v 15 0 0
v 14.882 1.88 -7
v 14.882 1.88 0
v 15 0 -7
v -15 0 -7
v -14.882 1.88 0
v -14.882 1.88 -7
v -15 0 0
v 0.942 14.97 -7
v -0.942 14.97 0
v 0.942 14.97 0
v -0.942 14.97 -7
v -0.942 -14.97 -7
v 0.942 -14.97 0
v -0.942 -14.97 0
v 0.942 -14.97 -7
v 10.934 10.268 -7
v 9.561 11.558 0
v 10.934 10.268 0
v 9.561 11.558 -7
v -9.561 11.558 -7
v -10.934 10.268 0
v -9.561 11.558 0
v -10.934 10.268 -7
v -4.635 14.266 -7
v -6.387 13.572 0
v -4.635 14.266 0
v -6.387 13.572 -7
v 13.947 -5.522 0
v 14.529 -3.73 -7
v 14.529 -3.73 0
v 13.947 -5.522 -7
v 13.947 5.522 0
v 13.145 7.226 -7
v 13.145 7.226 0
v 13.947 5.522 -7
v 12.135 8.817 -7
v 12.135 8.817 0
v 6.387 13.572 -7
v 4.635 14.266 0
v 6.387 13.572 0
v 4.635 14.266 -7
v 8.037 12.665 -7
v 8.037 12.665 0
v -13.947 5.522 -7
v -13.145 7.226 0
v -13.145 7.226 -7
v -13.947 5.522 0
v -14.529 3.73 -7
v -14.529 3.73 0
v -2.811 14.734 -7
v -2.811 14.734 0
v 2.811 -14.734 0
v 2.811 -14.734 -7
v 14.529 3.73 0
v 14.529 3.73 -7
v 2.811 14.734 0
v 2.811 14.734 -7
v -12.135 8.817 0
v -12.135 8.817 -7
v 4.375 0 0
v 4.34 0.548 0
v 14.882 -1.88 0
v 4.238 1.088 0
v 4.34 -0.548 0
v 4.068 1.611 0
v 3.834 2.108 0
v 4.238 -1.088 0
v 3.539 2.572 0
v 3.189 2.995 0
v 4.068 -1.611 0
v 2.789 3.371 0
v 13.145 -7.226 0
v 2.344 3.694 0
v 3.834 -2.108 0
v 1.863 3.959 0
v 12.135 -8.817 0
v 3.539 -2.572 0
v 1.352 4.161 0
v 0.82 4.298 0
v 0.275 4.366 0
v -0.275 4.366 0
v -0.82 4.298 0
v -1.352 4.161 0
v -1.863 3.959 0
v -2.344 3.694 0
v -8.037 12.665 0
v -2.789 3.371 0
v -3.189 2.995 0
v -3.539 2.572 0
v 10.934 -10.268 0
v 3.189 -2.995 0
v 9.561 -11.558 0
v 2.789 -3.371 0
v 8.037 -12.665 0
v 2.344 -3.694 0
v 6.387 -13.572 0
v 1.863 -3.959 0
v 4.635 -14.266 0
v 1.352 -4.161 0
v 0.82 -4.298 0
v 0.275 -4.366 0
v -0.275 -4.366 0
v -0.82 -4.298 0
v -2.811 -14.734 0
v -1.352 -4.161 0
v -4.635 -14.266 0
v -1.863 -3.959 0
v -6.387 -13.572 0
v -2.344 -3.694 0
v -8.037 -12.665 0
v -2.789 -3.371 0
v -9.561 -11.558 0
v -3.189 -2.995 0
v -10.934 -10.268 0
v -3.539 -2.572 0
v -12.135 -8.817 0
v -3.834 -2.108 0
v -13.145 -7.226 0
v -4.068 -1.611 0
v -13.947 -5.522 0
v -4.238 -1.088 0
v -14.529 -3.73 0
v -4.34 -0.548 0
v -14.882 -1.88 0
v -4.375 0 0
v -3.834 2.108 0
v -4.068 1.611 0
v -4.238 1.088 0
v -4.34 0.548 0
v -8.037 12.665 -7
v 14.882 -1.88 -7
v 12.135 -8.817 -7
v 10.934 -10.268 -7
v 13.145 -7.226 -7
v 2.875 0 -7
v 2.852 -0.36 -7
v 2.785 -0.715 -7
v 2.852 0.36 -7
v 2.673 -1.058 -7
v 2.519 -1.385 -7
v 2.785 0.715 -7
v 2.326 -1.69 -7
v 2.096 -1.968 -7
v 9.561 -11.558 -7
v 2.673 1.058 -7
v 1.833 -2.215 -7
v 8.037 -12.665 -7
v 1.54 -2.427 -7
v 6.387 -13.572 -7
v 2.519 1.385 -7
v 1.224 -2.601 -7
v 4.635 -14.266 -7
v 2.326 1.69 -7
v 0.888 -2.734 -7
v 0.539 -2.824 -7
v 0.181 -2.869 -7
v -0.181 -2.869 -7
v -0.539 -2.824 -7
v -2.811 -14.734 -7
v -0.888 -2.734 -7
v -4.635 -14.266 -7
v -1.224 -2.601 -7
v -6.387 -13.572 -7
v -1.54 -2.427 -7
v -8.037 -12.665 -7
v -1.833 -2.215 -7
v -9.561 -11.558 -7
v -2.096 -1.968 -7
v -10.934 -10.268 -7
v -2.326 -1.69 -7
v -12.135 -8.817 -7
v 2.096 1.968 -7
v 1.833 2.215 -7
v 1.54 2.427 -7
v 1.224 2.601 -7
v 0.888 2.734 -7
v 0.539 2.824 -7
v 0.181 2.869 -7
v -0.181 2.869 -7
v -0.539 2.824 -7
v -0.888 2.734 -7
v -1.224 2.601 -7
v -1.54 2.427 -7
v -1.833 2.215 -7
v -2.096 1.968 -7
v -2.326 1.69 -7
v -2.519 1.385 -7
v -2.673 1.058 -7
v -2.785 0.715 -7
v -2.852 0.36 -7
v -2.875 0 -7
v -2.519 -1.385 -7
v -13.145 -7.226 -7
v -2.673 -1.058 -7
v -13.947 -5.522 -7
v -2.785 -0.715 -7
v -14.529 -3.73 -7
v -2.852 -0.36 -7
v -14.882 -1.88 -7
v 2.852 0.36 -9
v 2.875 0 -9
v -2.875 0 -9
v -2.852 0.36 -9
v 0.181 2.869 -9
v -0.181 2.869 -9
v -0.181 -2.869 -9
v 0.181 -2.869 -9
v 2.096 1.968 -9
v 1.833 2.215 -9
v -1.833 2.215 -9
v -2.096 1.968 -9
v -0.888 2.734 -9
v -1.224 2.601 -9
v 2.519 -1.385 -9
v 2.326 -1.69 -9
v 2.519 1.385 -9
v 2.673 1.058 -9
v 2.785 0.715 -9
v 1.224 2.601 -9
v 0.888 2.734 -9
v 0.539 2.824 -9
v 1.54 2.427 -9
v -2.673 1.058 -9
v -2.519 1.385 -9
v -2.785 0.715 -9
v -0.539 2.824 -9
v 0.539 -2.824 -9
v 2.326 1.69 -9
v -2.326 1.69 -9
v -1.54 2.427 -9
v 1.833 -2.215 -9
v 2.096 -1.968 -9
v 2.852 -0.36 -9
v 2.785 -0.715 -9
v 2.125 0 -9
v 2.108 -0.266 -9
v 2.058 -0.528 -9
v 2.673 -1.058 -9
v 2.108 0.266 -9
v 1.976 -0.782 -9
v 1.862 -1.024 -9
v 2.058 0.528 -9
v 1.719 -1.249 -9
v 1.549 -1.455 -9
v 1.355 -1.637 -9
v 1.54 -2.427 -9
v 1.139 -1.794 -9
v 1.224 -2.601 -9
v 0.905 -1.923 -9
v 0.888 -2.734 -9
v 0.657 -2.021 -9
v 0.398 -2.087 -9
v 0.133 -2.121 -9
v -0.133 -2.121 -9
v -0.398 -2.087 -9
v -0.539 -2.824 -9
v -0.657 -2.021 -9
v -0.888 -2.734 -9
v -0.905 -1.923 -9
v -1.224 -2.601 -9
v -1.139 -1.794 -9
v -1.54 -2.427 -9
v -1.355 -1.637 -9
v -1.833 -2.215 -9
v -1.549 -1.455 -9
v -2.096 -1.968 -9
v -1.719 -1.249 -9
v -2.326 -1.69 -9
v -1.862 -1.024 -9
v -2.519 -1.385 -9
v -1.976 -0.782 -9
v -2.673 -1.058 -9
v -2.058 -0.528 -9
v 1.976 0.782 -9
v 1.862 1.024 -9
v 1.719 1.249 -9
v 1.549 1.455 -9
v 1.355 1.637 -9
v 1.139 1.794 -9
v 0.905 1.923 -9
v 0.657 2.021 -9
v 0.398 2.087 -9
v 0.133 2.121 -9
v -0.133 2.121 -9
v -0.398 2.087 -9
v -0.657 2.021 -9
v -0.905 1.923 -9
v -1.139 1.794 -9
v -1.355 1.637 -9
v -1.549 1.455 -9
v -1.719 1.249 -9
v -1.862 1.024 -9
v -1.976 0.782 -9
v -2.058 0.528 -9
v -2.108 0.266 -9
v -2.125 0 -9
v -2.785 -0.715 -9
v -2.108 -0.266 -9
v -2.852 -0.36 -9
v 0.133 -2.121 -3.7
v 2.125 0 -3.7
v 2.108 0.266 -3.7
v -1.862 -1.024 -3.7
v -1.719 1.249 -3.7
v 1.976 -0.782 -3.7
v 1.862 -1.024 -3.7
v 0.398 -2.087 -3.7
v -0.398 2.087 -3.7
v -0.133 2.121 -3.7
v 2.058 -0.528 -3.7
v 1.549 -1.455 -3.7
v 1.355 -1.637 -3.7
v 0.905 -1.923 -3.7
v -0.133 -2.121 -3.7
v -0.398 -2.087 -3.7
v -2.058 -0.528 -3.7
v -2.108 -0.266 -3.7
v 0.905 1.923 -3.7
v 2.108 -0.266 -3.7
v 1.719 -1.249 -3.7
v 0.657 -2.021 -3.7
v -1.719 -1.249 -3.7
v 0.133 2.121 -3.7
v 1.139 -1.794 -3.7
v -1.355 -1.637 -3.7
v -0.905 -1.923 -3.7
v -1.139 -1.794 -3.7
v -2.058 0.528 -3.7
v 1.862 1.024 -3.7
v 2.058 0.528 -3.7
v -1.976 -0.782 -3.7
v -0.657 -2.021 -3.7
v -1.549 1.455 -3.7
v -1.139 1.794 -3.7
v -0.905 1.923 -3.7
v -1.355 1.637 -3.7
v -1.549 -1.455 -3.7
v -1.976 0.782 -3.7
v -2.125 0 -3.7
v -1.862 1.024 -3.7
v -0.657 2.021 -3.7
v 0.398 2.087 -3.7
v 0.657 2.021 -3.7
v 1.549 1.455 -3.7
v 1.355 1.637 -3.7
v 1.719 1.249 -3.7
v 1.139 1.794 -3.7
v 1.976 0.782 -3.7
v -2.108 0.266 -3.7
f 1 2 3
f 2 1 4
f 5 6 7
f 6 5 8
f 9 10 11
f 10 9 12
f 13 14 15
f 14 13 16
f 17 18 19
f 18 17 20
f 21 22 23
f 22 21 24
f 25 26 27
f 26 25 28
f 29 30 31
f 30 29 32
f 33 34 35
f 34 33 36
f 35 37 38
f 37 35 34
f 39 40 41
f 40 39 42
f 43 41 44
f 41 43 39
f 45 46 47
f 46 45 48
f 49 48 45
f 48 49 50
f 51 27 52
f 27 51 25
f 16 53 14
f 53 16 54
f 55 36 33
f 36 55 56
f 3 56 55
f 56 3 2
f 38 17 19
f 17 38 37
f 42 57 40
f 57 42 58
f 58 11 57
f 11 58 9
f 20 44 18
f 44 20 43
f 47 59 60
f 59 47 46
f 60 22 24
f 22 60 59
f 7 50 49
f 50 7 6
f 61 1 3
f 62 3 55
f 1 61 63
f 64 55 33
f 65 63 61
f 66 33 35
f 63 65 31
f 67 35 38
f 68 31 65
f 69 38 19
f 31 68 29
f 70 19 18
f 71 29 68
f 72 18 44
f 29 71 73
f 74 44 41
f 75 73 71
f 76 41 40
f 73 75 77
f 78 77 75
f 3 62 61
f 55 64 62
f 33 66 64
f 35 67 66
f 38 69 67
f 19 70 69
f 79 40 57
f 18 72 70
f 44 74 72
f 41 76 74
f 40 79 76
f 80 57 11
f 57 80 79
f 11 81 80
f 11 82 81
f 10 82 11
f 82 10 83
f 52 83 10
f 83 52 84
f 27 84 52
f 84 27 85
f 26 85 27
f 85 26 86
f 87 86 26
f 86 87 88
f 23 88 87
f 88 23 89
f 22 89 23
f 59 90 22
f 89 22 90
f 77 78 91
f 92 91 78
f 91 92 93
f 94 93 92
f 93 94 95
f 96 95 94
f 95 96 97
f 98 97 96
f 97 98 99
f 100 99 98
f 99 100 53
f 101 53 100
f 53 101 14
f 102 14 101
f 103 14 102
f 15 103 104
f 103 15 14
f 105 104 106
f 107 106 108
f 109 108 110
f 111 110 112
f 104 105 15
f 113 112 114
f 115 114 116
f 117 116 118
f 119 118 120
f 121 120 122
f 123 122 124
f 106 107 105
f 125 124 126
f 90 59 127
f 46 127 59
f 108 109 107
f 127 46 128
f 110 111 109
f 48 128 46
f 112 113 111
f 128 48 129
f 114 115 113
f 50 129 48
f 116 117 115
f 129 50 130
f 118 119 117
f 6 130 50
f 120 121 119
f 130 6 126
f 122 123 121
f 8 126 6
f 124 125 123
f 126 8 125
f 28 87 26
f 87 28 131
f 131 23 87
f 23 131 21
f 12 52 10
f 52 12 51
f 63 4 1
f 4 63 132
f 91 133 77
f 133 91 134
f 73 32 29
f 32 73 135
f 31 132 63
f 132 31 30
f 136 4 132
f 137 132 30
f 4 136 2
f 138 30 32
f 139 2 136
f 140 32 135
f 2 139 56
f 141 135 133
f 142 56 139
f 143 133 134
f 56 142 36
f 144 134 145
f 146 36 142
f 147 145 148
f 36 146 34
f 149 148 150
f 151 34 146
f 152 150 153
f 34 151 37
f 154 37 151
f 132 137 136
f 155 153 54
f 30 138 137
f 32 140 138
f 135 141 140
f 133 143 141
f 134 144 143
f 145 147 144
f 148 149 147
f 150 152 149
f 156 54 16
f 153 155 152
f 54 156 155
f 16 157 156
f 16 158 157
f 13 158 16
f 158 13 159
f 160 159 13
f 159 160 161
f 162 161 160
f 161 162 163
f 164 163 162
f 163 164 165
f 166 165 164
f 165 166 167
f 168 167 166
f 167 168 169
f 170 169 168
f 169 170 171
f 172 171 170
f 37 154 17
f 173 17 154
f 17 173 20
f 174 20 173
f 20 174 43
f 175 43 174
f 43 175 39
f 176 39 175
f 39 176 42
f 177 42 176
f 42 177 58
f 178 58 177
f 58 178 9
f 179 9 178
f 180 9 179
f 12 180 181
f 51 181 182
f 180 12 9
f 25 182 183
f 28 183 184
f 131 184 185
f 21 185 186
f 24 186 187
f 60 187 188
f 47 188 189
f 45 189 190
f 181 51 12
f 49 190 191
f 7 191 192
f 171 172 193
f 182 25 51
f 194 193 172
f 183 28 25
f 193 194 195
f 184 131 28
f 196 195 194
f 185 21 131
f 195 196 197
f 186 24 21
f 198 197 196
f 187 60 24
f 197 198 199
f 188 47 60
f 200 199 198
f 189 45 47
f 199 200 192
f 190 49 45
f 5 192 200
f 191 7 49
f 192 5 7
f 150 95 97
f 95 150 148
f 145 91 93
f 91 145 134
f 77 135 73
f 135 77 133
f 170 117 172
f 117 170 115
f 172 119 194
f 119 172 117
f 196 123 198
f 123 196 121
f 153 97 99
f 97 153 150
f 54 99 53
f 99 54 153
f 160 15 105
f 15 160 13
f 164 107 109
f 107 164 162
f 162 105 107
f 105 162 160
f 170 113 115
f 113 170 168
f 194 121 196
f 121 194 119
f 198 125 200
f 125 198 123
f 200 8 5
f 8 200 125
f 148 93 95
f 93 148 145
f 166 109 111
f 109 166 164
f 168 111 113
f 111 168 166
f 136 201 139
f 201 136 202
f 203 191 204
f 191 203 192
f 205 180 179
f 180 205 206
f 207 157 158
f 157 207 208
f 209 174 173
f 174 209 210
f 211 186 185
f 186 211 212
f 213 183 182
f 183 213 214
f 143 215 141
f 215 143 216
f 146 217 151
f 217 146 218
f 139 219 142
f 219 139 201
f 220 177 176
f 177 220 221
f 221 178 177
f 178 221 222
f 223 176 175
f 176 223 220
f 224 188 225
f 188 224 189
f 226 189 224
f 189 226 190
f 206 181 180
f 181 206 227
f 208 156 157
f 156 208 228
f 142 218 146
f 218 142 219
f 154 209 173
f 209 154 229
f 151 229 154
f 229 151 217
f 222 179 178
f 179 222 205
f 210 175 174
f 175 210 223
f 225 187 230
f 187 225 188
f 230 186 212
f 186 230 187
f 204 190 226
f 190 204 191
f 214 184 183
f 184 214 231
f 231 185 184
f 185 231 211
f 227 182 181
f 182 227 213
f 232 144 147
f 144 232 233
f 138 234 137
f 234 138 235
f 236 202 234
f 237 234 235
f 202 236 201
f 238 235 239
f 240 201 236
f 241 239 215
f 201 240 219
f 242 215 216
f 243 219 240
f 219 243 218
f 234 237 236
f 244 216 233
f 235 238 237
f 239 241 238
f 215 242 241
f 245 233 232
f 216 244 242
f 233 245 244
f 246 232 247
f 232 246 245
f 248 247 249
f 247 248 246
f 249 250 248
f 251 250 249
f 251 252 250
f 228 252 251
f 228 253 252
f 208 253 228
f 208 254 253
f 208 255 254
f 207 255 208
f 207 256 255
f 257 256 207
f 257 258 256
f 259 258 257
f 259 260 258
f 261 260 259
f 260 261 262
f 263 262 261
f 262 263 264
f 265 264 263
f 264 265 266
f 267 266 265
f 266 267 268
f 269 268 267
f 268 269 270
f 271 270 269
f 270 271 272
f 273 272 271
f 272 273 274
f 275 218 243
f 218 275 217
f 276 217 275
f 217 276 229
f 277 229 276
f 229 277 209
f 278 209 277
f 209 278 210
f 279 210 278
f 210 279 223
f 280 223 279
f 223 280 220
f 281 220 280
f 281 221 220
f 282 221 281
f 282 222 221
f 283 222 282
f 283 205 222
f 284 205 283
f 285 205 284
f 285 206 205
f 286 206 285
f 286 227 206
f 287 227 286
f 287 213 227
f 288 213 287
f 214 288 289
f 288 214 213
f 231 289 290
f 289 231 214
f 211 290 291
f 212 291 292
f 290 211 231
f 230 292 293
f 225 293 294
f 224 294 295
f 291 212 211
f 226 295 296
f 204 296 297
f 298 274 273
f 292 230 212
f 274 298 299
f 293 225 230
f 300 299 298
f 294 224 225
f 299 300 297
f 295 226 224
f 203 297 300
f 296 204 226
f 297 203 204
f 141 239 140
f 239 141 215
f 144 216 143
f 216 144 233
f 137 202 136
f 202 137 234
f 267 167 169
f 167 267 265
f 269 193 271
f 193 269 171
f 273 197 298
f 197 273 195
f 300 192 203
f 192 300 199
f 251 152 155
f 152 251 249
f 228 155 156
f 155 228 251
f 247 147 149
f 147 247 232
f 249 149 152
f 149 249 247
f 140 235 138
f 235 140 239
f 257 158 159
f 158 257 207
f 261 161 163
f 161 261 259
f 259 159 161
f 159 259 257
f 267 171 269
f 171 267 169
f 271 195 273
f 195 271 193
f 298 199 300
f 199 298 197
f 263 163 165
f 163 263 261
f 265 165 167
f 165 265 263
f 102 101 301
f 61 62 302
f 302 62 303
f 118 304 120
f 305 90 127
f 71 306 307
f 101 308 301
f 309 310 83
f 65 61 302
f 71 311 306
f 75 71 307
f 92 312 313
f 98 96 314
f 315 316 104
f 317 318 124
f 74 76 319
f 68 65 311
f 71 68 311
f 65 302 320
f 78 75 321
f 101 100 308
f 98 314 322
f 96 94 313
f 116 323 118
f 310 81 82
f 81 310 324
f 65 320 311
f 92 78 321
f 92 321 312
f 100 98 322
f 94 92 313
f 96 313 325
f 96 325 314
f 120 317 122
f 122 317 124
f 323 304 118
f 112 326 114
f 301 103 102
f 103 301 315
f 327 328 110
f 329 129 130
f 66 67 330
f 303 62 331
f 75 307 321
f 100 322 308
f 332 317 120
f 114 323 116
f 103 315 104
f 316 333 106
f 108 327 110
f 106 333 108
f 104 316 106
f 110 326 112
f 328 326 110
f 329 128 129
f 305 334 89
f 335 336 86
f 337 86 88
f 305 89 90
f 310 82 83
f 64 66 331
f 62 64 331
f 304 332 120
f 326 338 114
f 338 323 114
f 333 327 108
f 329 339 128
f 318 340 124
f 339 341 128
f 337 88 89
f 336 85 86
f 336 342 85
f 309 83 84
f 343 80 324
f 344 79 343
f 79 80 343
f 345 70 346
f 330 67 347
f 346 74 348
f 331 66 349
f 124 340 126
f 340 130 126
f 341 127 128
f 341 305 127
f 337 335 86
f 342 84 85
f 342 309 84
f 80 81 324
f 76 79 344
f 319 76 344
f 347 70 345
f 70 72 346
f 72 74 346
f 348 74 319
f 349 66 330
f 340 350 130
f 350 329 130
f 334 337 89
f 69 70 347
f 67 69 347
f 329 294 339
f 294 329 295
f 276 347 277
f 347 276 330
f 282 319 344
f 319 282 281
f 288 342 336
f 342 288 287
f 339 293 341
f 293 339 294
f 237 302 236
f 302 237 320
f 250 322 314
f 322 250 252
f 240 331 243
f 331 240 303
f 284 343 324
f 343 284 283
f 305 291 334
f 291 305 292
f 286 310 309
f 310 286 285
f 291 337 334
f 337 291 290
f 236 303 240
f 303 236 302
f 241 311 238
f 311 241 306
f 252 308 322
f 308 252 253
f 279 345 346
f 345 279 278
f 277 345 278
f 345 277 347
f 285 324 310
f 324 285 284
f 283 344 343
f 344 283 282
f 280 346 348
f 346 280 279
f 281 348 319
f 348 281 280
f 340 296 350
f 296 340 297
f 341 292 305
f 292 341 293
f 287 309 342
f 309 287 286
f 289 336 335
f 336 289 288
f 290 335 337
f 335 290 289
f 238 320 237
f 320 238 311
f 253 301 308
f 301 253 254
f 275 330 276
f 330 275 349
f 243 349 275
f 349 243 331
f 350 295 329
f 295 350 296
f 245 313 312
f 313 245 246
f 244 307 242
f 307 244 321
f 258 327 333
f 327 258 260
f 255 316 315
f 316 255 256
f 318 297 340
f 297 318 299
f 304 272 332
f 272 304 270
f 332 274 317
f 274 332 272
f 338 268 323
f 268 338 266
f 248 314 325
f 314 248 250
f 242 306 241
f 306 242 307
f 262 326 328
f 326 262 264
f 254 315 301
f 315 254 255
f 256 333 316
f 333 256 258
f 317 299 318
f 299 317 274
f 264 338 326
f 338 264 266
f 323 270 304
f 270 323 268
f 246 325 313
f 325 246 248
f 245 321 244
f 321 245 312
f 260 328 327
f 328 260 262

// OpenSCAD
$fn = 50;


difference() {
	union() {
		translate(v = [0, 0, -7.0000000000]) {
			cylinder(h = 7, r = 15.0000000000);
		}
		translate(v = [0, 0, -9.0000000000]) {
			cylinder(h = 9, r = 2.8750000000);
		}
	}
	union() {
		translate(v = [0, 0, 0]) {
			rotate(a = [0, 0, 0]) {
				difference() {
					union() {
						#translate(v = [0, 0, -9.0000000000]) {
							cylinder(h = 9, r = 2.0000000000);
						}
						#translate(v = [0, 0, -3.7000000000]) {
							cylinder(h = 3.7000000000, r1 = 2.1250000000, r2 = 4.3750000000);
						}
						#translate(v = [0, 0, -9.0000000000]) {
							cylinder(h = 9, r = 2.1250000000);
						}
						#translate(v = [0, 0, -9.0000000000]) {
							cylinder(h = 9, r = 2.0000000000);
						}
					}
					union();
				}
			}
		}
	}
}
